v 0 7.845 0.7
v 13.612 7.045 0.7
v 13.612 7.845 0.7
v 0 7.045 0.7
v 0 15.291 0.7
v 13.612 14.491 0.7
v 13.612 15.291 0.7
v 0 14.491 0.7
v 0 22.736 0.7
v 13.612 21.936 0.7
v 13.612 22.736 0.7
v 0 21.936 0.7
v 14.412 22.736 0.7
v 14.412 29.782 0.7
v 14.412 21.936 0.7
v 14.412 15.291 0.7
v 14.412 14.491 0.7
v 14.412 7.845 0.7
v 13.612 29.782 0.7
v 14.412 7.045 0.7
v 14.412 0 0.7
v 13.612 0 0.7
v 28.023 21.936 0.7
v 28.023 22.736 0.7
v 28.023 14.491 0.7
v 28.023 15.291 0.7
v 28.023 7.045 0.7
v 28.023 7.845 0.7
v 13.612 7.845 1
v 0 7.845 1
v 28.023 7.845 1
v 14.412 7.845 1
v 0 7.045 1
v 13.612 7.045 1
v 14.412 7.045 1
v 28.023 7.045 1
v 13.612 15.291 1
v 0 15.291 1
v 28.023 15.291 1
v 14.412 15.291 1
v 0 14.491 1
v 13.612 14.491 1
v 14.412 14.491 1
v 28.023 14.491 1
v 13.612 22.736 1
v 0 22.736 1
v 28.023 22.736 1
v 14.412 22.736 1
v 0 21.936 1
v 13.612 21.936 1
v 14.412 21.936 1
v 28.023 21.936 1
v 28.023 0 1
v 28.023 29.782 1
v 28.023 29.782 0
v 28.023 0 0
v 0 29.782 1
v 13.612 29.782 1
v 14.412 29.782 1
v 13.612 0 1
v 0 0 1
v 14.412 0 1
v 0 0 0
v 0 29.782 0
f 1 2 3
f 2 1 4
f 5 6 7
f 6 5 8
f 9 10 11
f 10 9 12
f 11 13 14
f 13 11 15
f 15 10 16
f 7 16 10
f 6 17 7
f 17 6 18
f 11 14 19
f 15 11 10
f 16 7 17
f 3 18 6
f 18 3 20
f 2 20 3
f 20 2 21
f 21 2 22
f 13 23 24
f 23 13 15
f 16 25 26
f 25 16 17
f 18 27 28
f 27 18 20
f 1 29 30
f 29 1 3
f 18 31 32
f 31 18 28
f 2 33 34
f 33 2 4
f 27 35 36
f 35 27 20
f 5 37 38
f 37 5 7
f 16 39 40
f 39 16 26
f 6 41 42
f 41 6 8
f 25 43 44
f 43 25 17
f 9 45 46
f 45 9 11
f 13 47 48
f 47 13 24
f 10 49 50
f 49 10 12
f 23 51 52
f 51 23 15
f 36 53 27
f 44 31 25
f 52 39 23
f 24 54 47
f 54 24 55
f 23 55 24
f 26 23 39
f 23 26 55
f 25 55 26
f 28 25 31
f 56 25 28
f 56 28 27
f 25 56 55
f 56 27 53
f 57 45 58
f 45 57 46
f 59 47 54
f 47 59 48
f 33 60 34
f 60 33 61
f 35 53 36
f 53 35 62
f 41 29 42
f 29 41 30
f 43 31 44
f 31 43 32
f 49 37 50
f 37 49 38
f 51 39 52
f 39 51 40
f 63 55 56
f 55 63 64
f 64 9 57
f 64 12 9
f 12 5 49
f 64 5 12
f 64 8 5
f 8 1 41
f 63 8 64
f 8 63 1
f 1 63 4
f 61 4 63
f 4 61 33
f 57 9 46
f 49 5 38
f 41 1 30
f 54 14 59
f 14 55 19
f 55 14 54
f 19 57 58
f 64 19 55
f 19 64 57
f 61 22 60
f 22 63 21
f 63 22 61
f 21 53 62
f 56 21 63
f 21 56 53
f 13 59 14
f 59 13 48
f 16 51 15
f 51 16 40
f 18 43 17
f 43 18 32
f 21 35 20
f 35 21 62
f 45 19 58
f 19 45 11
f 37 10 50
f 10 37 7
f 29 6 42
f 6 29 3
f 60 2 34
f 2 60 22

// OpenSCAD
/*
 * PROMPT: H0 scale (1:87) ISO shipping container door end panel, flat for printing.
 * 28.0 mm × 29.8 mm × 1 mm. Three horizontal rail grooves evenly spaced in Y on the
 * exterior face, 0.8 mm wide, 0.3 mm deep, running full width. One vertical centre
 * groove 0.8 mm wide, 0.3 mm deep, running full height, representing the door split.
 */

$fn = 32;
S = 1 / 87;

panel_t    = 1.0;

ctnr_w     = 2438 * S;   // 28.0 mm — panel width
ctnr_h     = 2591 * S;   // 29.8 mm — panel height

door_rails = 3;
rail_w     = 0.8;   // groove width (mm)
rail_d     = 0.3;   // groove depth (mm)
door_gap_w = 0.8;   // centre groove width (mm)

module door_end_panel() {
    // X = panel width (ctnr_w), Y = panel height (ctnr_h), Z = thickness
    // exterior face is at Z = panel_t (face-up when printing)
    difference() {
        cube([ctnr_w, ctnr_h, panel_t]);
        // horizontal rail grooves evenly spaced along Y
        for (i = [1 : door_rails]) {
            y = i * ctnr_h / (door_rails + 1);
            translate([-1, y - rail_w/2, panel_t - rail_d])
                cube([ctnr_w + 2, rail_w, rail_d + 1]);
        }
        // vertical centre groove (door split)
        translate([ctnr_w/2 - door_gap_w/2, -1, panel_t - rail_d])
            cube([door_gap_w, ctnr_h + 2, rail_d + 1]);
    }
}

door_end_panel();
